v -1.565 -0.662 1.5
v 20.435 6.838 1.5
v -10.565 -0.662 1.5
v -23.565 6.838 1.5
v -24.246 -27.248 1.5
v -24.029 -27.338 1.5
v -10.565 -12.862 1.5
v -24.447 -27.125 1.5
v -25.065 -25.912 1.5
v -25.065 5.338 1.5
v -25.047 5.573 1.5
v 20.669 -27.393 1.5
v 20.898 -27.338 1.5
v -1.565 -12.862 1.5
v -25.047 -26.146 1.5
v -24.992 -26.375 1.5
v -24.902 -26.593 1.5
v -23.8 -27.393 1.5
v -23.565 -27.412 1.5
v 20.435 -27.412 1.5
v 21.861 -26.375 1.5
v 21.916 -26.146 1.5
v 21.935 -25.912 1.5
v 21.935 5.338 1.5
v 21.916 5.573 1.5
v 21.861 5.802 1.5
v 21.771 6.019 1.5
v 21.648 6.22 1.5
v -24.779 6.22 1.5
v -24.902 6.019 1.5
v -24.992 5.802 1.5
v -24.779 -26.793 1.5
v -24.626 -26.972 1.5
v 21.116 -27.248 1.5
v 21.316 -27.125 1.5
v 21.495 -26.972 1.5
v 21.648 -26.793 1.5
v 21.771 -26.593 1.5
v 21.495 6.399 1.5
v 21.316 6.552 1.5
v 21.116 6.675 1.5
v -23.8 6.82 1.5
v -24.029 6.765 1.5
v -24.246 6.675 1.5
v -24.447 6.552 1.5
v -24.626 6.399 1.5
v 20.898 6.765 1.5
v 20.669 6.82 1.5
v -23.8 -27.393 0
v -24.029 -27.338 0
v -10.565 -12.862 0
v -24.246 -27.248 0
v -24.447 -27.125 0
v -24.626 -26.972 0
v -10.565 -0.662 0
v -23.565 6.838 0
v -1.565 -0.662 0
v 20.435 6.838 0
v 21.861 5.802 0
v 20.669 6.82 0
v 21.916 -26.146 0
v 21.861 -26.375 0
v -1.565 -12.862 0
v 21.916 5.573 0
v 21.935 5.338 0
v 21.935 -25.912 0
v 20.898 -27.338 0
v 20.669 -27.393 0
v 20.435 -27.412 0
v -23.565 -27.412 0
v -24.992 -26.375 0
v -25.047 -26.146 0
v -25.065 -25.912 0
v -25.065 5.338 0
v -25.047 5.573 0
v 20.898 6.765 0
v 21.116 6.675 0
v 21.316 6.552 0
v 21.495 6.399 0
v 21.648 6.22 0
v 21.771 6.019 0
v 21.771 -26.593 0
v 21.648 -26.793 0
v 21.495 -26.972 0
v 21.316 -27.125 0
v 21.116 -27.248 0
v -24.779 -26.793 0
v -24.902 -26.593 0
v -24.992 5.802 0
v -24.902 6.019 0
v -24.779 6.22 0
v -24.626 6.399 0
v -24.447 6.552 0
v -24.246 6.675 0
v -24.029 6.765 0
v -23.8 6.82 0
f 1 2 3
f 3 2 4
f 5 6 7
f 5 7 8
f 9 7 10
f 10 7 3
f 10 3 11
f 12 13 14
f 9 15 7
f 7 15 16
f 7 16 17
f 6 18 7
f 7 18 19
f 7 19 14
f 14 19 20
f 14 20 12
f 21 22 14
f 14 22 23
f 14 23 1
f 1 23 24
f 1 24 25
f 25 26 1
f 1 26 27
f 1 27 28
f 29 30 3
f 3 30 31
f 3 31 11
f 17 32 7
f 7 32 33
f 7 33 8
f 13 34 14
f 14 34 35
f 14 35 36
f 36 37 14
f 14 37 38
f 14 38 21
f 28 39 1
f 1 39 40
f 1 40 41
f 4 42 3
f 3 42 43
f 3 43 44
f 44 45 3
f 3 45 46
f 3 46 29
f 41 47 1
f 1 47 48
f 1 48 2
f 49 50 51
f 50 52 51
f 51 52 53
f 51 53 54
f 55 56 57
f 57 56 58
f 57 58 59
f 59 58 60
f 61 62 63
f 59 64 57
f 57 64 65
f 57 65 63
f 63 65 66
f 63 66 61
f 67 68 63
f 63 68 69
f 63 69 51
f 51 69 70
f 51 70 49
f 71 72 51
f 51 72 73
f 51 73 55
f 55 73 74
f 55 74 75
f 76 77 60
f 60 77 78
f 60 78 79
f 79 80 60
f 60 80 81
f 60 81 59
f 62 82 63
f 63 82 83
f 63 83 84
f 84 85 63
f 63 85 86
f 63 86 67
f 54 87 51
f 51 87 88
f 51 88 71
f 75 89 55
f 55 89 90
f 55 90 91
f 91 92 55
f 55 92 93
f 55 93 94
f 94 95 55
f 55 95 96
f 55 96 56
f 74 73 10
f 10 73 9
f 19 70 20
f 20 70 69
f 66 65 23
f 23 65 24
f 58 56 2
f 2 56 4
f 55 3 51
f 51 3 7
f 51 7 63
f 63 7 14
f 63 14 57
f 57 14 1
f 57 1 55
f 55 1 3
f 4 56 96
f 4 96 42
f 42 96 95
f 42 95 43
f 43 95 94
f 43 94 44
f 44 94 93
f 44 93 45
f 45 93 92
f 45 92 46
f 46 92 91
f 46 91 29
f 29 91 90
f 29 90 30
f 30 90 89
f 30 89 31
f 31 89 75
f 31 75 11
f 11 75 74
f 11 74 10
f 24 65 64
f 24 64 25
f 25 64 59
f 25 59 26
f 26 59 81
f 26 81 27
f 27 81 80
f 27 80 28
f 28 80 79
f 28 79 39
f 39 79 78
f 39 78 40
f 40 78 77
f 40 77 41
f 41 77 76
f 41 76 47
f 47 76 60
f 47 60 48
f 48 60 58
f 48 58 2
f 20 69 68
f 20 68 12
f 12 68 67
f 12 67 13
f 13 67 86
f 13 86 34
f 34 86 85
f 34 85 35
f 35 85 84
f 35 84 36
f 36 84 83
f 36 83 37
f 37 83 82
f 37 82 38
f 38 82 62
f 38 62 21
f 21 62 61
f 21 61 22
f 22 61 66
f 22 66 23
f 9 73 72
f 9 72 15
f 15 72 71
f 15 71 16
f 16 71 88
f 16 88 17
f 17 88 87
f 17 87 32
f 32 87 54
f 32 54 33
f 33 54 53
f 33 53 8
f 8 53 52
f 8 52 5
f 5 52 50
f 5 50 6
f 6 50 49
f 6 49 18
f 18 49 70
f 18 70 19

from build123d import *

# Parameters (mm, degrees)
CROQUIS1_W              = 47
CROQUIS1_H              = 34.25
SALIENTE_EXTRUIR1_DEPTH = 1.5
CROQUIS2_W              = 9
CROQUIS2_H              = 12.2
CORTAR_EXTRUIR5_DEPTH   = 21.5
CORTAR_EXTRUIR6_DEPTH   = 21.5


with BuildPart() as part:
    # Croquis1 → Saliente-Extruir1 (new body)
    with BuildSketch(Plane.XY):
        with Locations((-1.565239082, -10.286716172)):
            Rectangle(CROQUIS1_W, CROQUIS1_H)
    extrude(amount=SALIENTE_EXTRUIR1_DEPTH)

    # Croquis2 → Cortar-Extruir5 (cut)
    with BuildSketch(Plane.XY):
        with Locations((-6.065239082, -6.761716172)):
            Rectangle(CROQUIS2_W, CROQUIS2_H)
    extrude(amount=CORTAR_EXTRUIR5_DEPTH, mode=Mode.SUBTRACT)

    # Croquis3 → Cortar-Extruir6 (cut)
    with BuildSketch(Plane.XY):
        with BuildLine():
            Line((-25.065239082, -25.911716172), (-25.065239082, -27.411716172))
            Line((-25.065239082, -27.411716172), (-23.565239082, -27.411716172))
            ThreePointArc((-23.565239082, -27.411716172), (-24.625899254, -26.972376343), (-25.065239082, -25.911716172))
        make_face()
        with BuildLine():
            Line((-25.065239082, 5.338283828), (-25.065239082, 6.838283828))
            Line((-25.065239082, 6.838283828), (-23.565239082, 6.838283828))
            ThreePointArc((-23.565239082, 6.838283828), (-24.625899254, 6.398944), (-25.065239082, 5.338283828))
        make_face()
        with BuildLine():
            Line((20.434760918, 6.838283828), (21.934760918, 6.838283828))
            Line((21.934760918, 6.838283828), (21.934760918, 5.338283828))
            ThreePointArc((21.934760918, 5.338283828), (21.49542109, 6.398944), (20.434760918, 6.838283828))
        make_face()
        with BuildLine():
            Line((21.934760918, -27.411716172), (21.934760918, -25.911716172))
            ThreePointArc((21.934760918, -25.911716172), (21.49542109, -26.972376343), (20.434760918, -27.411716172))
            Line((20.434760918, -27.411716172), (21.934760918, -27.411716172))
        make_face()
    extrude(amount=CORTAR_EXTRUIR6_DEPTH, mode=Mode.SUBTRACT)


solid = part.part
